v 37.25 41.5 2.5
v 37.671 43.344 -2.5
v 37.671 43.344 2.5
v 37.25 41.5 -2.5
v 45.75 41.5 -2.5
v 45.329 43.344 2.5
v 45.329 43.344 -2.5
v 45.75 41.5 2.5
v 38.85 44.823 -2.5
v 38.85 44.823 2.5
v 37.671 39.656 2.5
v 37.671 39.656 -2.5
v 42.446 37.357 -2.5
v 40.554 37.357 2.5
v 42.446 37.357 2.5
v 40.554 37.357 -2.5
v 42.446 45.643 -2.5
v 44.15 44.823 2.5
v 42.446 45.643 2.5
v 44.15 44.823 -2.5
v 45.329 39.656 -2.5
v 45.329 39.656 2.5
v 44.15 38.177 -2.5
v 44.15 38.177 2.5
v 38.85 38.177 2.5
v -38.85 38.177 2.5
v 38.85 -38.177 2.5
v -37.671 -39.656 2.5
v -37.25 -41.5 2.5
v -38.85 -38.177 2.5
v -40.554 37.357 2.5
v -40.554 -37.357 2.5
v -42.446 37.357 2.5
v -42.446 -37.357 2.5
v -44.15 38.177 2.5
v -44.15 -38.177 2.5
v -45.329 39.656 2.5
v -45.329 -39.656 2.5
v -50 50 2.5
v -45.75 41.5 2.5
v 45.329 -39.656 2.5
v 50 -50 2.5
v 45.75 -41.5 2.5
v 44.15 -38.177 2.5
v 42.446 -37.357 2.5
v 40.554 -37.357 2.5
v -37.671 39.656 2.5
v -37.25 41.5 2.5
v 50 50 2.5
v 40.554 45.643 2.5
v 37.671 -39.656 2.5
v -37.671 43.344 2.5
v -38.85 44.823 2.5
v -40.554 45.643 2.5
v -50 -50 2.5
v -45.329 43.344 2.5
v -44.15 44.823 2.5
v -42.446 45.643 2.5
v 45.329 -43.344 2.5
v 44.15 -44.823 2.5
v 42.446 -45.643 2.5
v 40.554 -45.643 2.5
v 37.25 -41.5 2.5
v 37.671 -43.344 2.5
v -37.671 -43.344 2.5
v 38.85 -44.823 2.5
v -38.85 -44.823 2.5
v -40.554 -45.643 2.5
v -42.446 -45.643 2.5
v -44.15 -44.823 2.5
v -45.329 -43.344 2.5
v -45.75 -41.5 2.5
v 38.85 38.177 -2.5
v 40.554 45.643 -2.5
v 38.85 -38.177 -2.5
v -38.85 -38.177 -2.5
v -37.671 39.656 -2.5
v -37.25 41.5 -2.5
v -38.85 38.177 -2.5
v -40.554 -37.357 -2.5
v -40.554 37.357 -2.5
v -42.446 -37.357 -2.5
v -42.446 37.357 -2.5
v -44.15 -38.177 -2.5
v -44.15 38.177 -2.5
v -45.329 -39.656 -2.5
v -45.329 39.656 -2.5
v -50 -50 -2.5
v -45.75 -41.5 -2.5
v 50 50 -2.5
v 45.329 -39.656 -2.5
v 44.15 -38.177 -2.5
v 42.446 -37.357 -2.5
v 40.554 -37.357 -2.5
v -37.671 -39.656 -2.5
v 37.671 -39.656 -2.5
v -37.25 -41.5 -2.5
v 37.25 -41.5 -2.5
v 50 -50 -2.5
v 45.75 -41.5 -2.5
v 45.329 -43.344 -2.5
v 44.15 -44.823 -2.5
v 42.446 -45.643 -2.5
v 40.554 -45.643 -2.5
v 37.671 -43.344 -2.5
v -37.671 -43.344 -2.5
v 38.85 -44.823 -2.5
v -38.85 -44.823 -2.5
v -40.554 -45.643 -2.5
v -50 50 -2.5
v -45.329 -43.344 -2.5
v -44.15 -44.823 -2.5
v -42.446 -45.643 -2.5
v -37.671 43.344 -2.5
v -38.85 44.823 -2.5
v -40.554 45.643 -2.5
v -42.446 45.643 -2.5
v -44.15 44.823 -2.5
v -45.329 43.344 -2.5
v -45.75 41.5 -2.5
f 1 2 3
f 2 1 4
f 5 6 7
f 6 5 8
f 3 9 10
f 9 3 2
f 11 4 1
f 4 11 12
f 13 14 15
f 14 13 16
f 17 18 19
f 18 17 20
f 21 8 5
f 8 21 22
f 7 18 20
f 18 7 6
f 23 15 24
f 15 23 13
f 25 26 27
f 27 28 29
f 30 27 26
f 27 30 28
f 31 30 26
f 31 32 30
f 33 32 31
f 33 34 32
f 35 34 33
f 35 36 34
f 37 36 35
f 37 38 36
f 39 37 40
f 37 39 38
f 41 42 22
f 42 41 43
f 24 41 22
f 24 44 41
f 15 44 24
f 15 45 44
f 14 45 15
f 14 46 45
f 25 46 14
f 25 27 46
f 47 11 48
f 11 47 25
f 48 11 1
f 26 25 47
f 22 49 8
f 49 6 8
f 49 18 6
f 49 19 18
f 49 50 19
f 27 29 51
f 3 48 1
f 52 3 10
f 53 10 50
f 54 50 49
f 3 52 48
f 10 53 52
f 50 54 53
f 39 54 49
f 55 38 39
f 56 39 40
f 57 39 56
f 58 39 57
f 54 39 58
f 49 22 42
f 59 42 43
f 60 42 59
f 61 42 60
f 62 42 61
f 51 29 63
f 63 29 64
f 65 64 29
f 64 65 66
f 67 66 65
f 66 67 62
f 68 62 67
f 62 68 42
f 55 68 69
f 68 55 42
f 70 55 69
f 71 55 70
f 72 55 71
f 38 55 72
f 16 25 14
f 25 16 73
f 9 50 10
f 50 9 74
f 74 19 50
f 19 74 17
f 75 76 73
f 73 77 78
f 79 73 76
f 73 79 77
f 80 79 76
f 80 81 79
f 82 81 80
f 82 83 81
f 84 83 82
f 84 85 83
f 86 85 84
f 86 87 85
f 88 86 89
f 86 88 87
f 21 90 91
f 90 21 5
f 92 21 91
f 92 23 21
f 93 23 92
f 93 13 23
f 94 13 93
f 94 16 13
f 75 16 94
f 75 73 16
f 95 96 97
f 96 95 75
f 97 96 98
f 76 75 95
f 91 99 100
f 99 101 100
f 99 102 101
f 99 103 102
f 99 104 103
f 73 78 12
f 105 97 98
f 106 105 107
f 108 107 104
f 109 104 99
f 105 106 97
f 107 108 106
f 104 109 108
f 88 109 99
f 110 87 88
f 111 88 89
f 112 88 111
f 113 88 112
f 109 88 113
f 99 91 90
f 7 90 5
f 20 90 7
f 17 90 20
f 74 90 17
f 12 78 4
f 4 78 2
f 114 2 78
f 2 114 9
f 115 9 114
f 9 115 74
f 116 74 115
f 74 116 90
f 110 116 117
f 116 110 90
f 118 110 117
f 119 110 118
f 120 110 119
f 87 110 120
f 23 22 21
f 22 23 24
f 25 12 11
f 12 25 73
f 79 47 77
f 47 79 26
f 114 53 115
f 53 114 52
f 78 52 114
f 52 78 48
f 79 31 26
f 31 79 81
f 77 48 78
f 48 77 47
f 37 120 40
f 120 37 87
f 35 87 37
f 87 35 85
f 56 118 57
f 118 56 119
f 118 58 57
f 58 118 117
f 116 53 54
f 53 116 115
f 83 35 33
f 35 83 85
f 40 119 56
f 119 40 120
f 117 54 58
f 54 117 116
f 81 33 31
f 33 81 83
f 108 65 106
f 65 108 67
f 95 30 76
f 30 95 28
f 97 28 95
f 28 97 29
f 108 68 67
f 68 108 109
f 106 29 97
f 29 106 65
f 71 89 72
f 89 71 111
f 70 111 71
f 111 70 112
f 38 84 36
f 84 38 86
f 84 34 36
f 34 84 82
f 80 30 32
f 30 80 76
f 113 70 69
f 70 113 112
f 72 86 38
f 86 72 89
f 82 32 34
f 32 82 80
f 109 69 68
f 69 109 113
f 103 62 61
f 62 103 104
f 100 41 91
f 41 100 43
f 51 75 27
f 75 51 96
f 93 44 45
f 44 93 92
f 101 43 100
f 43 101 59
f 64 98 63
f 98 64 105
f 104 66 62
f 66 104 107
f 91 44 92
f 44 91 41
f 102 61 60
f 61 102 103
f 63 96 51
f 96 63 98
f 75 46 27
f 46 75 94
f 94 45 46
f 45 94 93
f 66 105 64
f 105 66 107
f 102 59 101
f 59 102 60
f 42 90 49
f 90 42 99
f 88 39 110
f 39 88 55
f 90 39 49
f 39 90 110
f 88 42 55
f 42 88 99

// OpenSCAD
// Generated by SolidPython 1.1.3 on 2023-10-16 12:15:28


difference() {
	cube(center = true, size = [100, 100, 5]);
	union() {
		translate(v = [41.5000000000, 41.5000000000]) {
			cylinder(center = true, h = 5, r = 4.2500000000);
		}
		translate(v = [-41.5000000000, 41.5000000000]) {
			cylinder(center = true, h = 5, r = 4.2500000000);
		}
		translate(v = [-41.5000000000, -41.5000000000]) {
			cylinder(center = true, h = 5, r = 4.2500000000);
		}
		translate(v = [41.5000000000, -41.5000000000]) {
			cylinder(center = true, h = 5, r = 4.2500000000);
		}
	}
}
/***********************************************
*********      SolidPython code:      **********
************************************************
 
import solid
import numbers
import pudb
from solid.utils import *
import viewscad
import subprocess
import os
import os.path as osp
import math
import sys

chamfer_extrude=solid.import_scad("./chamfer_extrude.scad")
chamfer_extrude=chamfer_extrude.chamfer_extrude
r = viewscad.Renderer(width=800, height=800)

def debug(model,f_name,path="/home/ts/code/projects/mfd/designs/debug"):
    solid.scad_render_to_file(model,osp.join(path,f_name)+".scad")
#generate position list of wells using offset from center
wells_pos_from_center_4 = lambda offset: [[-offset,offset],
                                        [offset, offset],
                                        [-offset, -offset],
                                        [offset, -offset]]
#wells_pos_from_center_2 = lambda offset: [[0,offset],
#                                        [0, -offset]]
wells_pos_from_center_2 = lambda offset: [[offset,0],
                                        [-offset,0]]

def make_well(dims,shape=None,height=None,dxf=False):
    def circle_cylinder():
        if dxf or (height is None):
            well = solid.circle(r=dims, segments=64)
        else:
            well = solid.cylinder(r=dims, h=height, segments=64, center = True)
        return well
    if dims is None:
        sys.exit("radius needs to be a number")
    if isinstance(dims, numbers.Number):
        well =circle_cylinder()
    elif len(dims)==1:
        if isinstance(dims[1], numbers.Number):
            well =circle_cylinder()
        else:
            sys.exit("radius needs to be a number")
    elif len(dims)==2:
        well = solid.square(dims,center = True)
    elif len(dims)==3:
        well = solid.cube(dims, center = True)
    return well

def wells_top_bottom(center_gap,device_dims=None,shape=None,height=None, positions = None, dxf = False):
    well_shape = make_well(device_dims,shape=shape,height=height,dxf=dxf)
    wells = []
    if positions is None:
        offset = radius+radius/2.0
        positions = wells_pos_from_center_2(offset)
    if dxf or (height is None):
        height = 0
    for position in positions:
        if dxf:
            wells.append(solid.translate([position[0],position[1]])(well_shape))
        else:
            wells.append(solid.translate([position[0],position[1],height/2.0])(well_shape))
    return  union()(*wells)

#place wells in four corners 
def four_corner(radius,height=None, positions = None, dxf = False):
    #if well pos not specified set
    #to equally spaced by half radius
    if positions is None:
        offset = radius+radius/2.0
        positions = wells_pos_from_center_4(offset)
    if dxf or (height is None):
        height = 0
    #make wells at positions with specified radius and height
    wells = []
    for position in positions:
        #make circle if making dxf
        if dxf:
            well_shape = solid.circle(r=radius, segments=64)
            well_shape = solid.translate([position[0],position[1]])(well_shape)
        #if stl make cylinder
        else:
            well_shape = solid.cylinder(r=radius, h=height, segments=64, center = True)
            well_shape = solid.translate([position[0],position[1],height/2.0])(well_shape)
        wells.append(well_shape)
    return  union()(*wells)

#generate channels 
def make_channels(length,width,height=0,num_chans=1,max_chans=None,spacing=None, dxf = False,
                  rotate_channels=False):
    if dxf or (height is None):
        height = 0
    #if channel gap not defined, is equal to
    if spacing is None: spacing = width
    #calculate number of channels if fitting max num within given width
    if not max_chans is None:
        import math
        num_chans = math.floor((max_chans-spacing)/(width+spacing))
    #get total width of channel section  
    total_width = (width*num_chans)+(spacing*(num_chans-1))

    #make template channel
    #if rotate_channels: width, length = length, width
    if dxf:
        channel_t = solid.square([length,width],center = True)
    else:
        channel_t = solid.cube([length,width,height], center = True)

    #if number channels is even, offset the first channel to center its gap
    if num_chans % 2 == 0: centering = -(width/2.0+spacing/2.0)
    else: centering = 0
    #move template channel up to align bottom at z = 0 
    #and offset center if necessary
    if dxf:
        channel_t = solid.translate([0,centering])(channel_t)
    else:
        channel_t = solid.translate([0,centering,height/2.0])(channel_t)

    #if rotate_channels: length,width = width,length
    #start making the channels
    channels = []
    for i in range(num_chans):
        #if i=0 there is no translation
        #if i=1, we make the first channel adjacent to second
        direction = i

        #if i>=1, we add channels alternating left and right
        if i >= 1:
            direction = -(i/2.0)
            if i % 2 == 1: direction = (-direction)+0.5
                
        #make channel at right position and add it to channel list
        translation_coords = [0,direction*(width+spacing)]
        #if rotate_channels: translation_coords = [direction*(width+spacing),0]
        if dxf:
            channel = solid.translate(translation_coords)(channel_t)
        else:
            channel = solid.translate([*translation_coords,0])(channel_t)
        channels.append(channel)
    
    #group all channels as one object
    channels = union()(*channels)
    #compute the x,y,z dimensions in order to pass as arguments 
    #for construction of other parts of device (such as the chambers)
    measurements = {'x':(length/2.0,-length/2.0),
                    'y':(total_width/2.0,-total_width/2.0)}
    if not dxf:
        measurements['z'] = (height,0)
    if rotate_channels:
        channels = solid.rotate(90)(channels)
        measurements['x'],measurements['y']=measurements['y'],measurements['x']
    return channels,measurements

def make_chambers(msrs,height=None,extra=0,len_until=None,width=None, dxf = False):
    #computes x,y,z length
    total = lambda x : abs(x[0]) + abs(x[1])
    
    #if specific height if specified
    #otherwise use same height as channels
    if dxf:
        pass
    elif not height is None:
        msrs['z'] = (height,0)
    else:
        msrs['z'] = (0,0)
        
    #make copy of measurements from channels to modify chamber dimensions 
    #and add length to chambers as specified
    chamber_dims = msrs.copy()
    #calculate length of chamber to reach specified offset
    if not len_until is None:
        chamber_len = len_until-(msrs['x'][0])
    #or add specified length to channel length (if not specified, adds 0)
    else:
        chamber_len = msrs['x'][0]+extra
    #set the chamber length based 
    chamber_dims['x'] = (chamber_len/2.0,-(chamber_len/2.0))
    #compute final dimensions of chamber
    if not width is None:
        chamber_dims['y'] = (width/2.0,-width/2.0)
    chamber_dims = [total(size) for size in chamber_dims.values()]
        
    #calculate chamber translation offset to place adjacent to channels
    chamber_trslt = msrs['x'][0]+(chamber_len/2.0)
    #compute chamber translation coordinates to align with channels
    #x = 1 moves chamber above channels
    #x = -1 moves chamber below channels
    if dxf:
        trslt = lambda x : [x*(chamber_trslt),0]
    else:
        trslt = lambda x : [x*(chamber_trslt),0,msrs['z'][0]/2.0]
    
    #function to make chamber at top or at bottom 
    if dxf:
        move = lambda x : solid.translate(trslt(x))(solid.square(chamber_dims, center = True) )
    else:
        move = lambda x : solid.translate(trslt(x))(solid.cube(chamber_dims,center = True))
    #make top and bottom chambers and return them as grouped
    top = move(1)
    bottom = move(-1)
    #chambers=solid.rotate(90)(solid.union()(top,bottom))
    chambers=(solid.union()(top,bottom))

    return chambers

#create alignment features 
def alignment_features(unit,dims,grid_size, mask_size = None, alignment = "hollow", units_from_center = (2.5,2.5), corner_len=None):
    width = grid_size[0]*dims[0]
    length = grid_size[1]*dims[1]
    if mask_size is None and corner_len is None:
        corner_len = (dims[0] + dims[1]) /2 / 8
    corner = lambda thickness_div : solid.union()( solid.square([corner_len,corner_len/thickness_div],center=False), solid.square([corner_len/thickness_div,corner_len],center=False) )
    
    def make_full(thickness_div):
        thickness = corner_len/thickness_div
        tr = solid.translate([0, 0, 0 ])(solid.rotate(180)(corner(thickness_div)))
        tr = solid.translate([thickness/2,thickness/2,0])(tr)
        bl = solid.translate([0, 0, 0 ])(solid.rotate(0)(corner(thickness_div)))
        bl = solid.translate([-thickness/2,-thickness/2,0])(bl)
        return solid.union()(tr,bl)
    
    def make_hollow(thickness_div):
        thickness = corner_len/(thickness_div/2)
        inner = make_full(thickness_div)
        outer = make_full(thickness_div/2)
        hollow = outer - inner 
        return hollow
    
    center = (width /2 , length/2)
    mask_pos = lambda x,y : (center[0] + x*(float(units_from_center[0])*dims[0]), center[1] + y*(float(units_from_center[1])*dims[1]))
    positions = []
    positions.append(mask_pos(1,0))
    positions.append(mask_pos(0,1))
    positions.append(mask_pos(-1,0))
    positions.append(mask_pos(0,-1))
    make_mask = lambda mtype : make_hollow(8) if mtype == "hollow" else make_full(8)
    masks = [ solid.translate([*position,0])(make_mask(alignment)) for position in positions]
    
    solid.scad_render_to_file(solid.union()(*masks),"./designs/open_chamber/masks.scad")
    #return unit - solid.union()(*masks)
    return solid.union()(*masks,unit)

def create_outline(thickness, array, dims, grid_size,):
    width = grid_size[0]*dims[0] + thickness *2
    length = grid_size[1]*dims[1] + thickness *2
    outer = solid.translate([-thickness, -thickness,0])(solid.square([width, length]))
    return outer-array

def create_wall(wall_thickness, outline_thickness, dims, grid_size, wall_height = 2000, dxf = False):
    inner_width = grid_size[0]*dims[0] + outline_thickness *2
    inner_length = grid_size[1]*dims[1] + outline_thickness *2
    outer_width = inner_width + wall_thickness * 2
    outer_length = inner_length + wall_thickness * 2
    outer_pos_x = -outline_thickness-wall_thickness
    outer_pos_y = -outline_thickness-wall_thickness
    inner_pos_x = -outline_thickness
    inner_pos_y = -outline_thickness
    if dxf:
        inner_wall = solid.translate([inner_pos_x,
                                      inner_pos_y,
                                      0])(solid.square([inner_width, inner_length]))
        outer_wall = solid.translate([outer_pos_x,
                                      outer_pos_y,
                                      0])(solid.square([outer_width, outer_length]))

        return outer_wall-inner_wall
    else:
        inner_wall = solid.translate([inner_pos_x,
                                      inner_pos_y,
                                      0])(solid.cube([inner_width, inner_length,wall_height]))
        outer_wall = solid.translate([outer_pos_x,
                                      outer_pos_y,
                                      0])(solid.cube([outer_width, outer_length,wall_height]))

        return outer_wall-inner_wall, {'wall_height': wall_height,
                                       'wall_thickness': wall_thickness,
                                       'inner_width':inner_width,
                                       'inner_length': inner_length,
                                       'outer_width': outer_width,
                                       'outer_length': outer_length,
                                       'outer_pos_x' : outer_pos_x,
                                       'outer_pos_y' : outer_pos_y,
                                       'inner_pos_x' : inner_pos_x,
                                       'inner_pos_y' : inner_pos_y}

def create_thicker_wall(wall_thickness, outer_wall_offset, wall_dims, dims, grid_size, height_start = .2, height_end=2, dxf = False):
    addon_wall,thicker_wall_dims = create_wall(wall_thickness, outer_wall_offset, dims, grid_size, wall_height=height_end-height_start, dxf = False)
    addon_wall = solid.translate([0,0,height_start])(addon_wall)

    thicker_wall_dims['wall_height'] = height_end
    thicker_wall_dims['wall_thickness'] = wall_dims['wall_thickness'] + wall_thickness
    return addon_wall, thicker_wall_dims
 
def add_lock_to_wall(wall,wall_dims,y_offset = 0,cut_ratio=0.7,L_length=3, gap_ratio=0.05, axis="x",width_ratio=1/2):
    # Makes L shape
    def make_L(max_length,length_thickness,max_width,width_thickness,height,y_offset):
        length = solid.cube([max_length,length_thickness,height])
        width = solid.cube([width_thickness,max_width,height])
        width = solid.translate([max_length-(width_thickness),0,0])(width)
        L = solid.union()(width,length)
        debug(L,"L")
        if axis == "x":
            L = solid.rotate(-90)(L)
            L = solid.translate([0,max_length,0])(L)
        else:
            L = solid.rotate(-180)(L)
            L = solid.translate([max_length,max_width,0])(L)
        return solid.translate([0,0,y_offset])(L)
    
    lock_length = L_length
    lock_width = wall_dims['wall_thickness']*width_ratio
    lock_length_thickness = lock_width/2
    lock_width_thickness = lock_width/2
    L_lock = make_L(lock_length,lock_length_thickness,lock_width,lock_width_thickness, wall_dims['wall_height']-y_offset, y_offset)
    
    margin_space = lock_length - lock_length*(1-gap_ratio)
    key_length = lock_length-margin_space
    key_length_thickness = lock_length_thickness-(margin_space*2)
    key_width = lock_width-(margin_space*2)
    key_width_thickness = lock_width_thickness-(margin_space*2)
    L_key = make_L(key_length,key_length_thickness,key_width,key_width_thickness, wall_dims['wall_height']-y_offset, y_offset)
    L_key = solid.translate([margin_space,margin_space,0])(L_key)
    L = solid.union()(L_lock,L_key)
    debug(L,"L")
    
    #Make cube to be used as negative to split frame in a half
    #Can choose if making left or right negative, specify ratio of split
    def make_negative(right,cut_ratio):
        if axis == "x":
            if right:
                length = wall_dims['outer_length']*(1-cut_ratio)
                pos_x = wall_dims['outer_pos_x']+(wall_dims['outer_length']*cut_ratio)
            else:
                length = wall_dims['outer_length']*(cut_ratio)
                pos_x = wall_dims['outer_pos_x'] 
            negative = solid.cube([wall_dims['outer_width'],length, wall_dims['wall_height']])
            negative = solid.translate([wall_dims['outer_pos_y'],pos_x,0])(negative)
        else:
            if right:
                length = wall_dims['outer_width']*(1-cut_ratio)
                pos_x = wall_dims['outer_pos_y']+(wall_dims['outer_width']*cut_ratio)
            else:
                length = wall_dims['outer_width']*(cut_ratio)
                pos_x = wall_dims['outer_pos_y'] 
            negative = solid.cube([length,wall_dims['outer_length'], wall_dims['wall_height']])
            negative = solid.translate([pos_x,wall_dims['outer_pos_x'],0])(negative)
        return negative, pos_x, length 
                      
    #Make negatives
    negative_right, right_half_pos_x, right_half_length = make_negative(True,cut_ratio)
    negative_left, left_half_pos_x, right_half_length = make_negative(False,cut_ratio)
    #Make halves
    left_half = solid.difference()(wall,negative_right)
    right_half = solid.difference()(wall,negative_left)
    def place_L(L, L_length,L_width):
        #Place L on top wall       
        offset_to_center = (wall_dims['wall_thickness']-L_width)/2
        if axis == "x":
            y_pos_top = (wall_dims['outer_pos_y'] +
                    wall_dims['outer_width'] - 
                    L_width - offset_to_center)
            top_L = solid.translate([y_pos_top,
                                     right_half_pos_x-(L_length),
                                     0])(L)
            #Place L on bottom wall       
            y_pos_bottom = wall_dims['outer_pos_y']+offset_to_center
            bottom_L = solid.translate([y_pos_bottom,
                                        right_half_pos_x-L_length,
                                        0])(L)
        else:
            y_pos_top = (wall_dims['outer_pos_x'] +
                    wall_dims['outer_length'] -
                    (L_width+offset_to_center))
            top_L = solid.translate([right_half_pos_x-L_length,
                                     y_pos_top,
                                     0])(L)
            #Place L on bottom wall       
            y_pos_bottom = wall_dims['outer_pos_y']+offset_to_center
            bottom_L = solid.translate([right_half_pos_x-L_length,
                                        y_pos_bottom,
                                        0])(L)
        return bottom_L, top_L
    #Make complimentary L pieces through union and differences
    #Make Lock
    bottom_L_lock, top_L_lock = place_L(L_lock,L_length,lock_width)
    left_half = solid.difference()(left_half,bottom_L_lock)
    left_half = solid.difference()(left_half,top_L_lock)
    #Make Key
    bottom_L_key, top_L_key = place_L(L_key,L_length,lock_width)
    right_half = solid.union()(right_half,bottom_L_key)
    right_half = solid.union()(right_half,top_L_key)
    return left_half, right_half


#build a row x col grid of containment units
def make_unit_array(unit,dims,grid_size, dxf = False, alignment = None, mask_size = None,
                    units_from_center = None,alignment_offset=None, alignment_mark_size=1):
    units = []
    for col in range(grid_size[1]):
        for row in range(grid_size[0]):
            if dxf:
                units.append(solid.translate([row*dims[0],col*dims[1]])(unit))
            else:
                units.append(solid.translate([row*dims[0],col*dims[1],dims[2]/2.0])(unit))
    array = solid.union()(*units)
    if (not alignment is None) and dxf:
        if not alignment_offset is None:
            array = solid.translate([alignment_offset[0],alignment_offset[1]])(array)
        array = alignment_features(array,dims, grid_size, alignment = alignment, mask_size = None, units_from_center = units_from_center,corner_len=alignment_mark_size)
        if not alignment_offset is None:
            array = solid.translate([-alignment_offset[0],-alignment_offset[1]])(array)
    return array


def make_taylor(wells_pos = wells_pos_from_center_4(2.25), well_rad = 1.5 ,
                well_height = 2, chan_w = 0.01, chan_l = 1, chan_h = 0.010 ,
                chan_gap = 0.040, max_chans = None,num_chans=100, chamber_height  = 0.100,
                columns = 1, rows = 1, chamber_len_until=2.25, add_channels = True, add_wells = True, 
                add_chambers = True, save_path = "./", alignment = None, units_from_center = 2,
                mask_size = None, render_stl = False, outline_thickness = 0.050, dxf = True,
                wall_height = 15, wall_thickness = 0.95, casing_x=9, casing_y=9, casing_z=0,rotate_units=0):

    dims = [casing_x, casing_y, casing_z]
    wells = four_corner(well_rad,well_height, dxf = dxf, positions = wells_pos)
    debug(wells,"wells")
    channels, msrs = make_channels(chan_l,chan_w,chan_h,dxf=dxf, spacing = chan_gap, max_chans=max_chans,num_chans=num_chans)
    debug(channels,"channels")
    chambers = make_chambers(msrs,dxf = dxf, height=chamber_height,len_until=chamber_len_until)
    debug(chambers,"chambers")

    #add together and render
    device_parts = []
    if add_channels:
        device_parts.append(channels)
    if add_wells:
        device_parts.append(wells)
    if add_chambers:
        device_parts.append(chambers)
    device=union()(*device_parts)
    device = rotate(rotate_units)(device)

    device=solid.translate([dims[0]/2.0,dims[1]/2.0,0])(device)
    channels = rotate(rotate_units)(channels)
    channels=solid.translate([dims[0]/2,dims[1]/2,0])(channels)
    chambers_wells = union()(wells,chambers)
    chambers_wells = rotate(rotate_units)(chambers_wells)
    chambers_wells=solid.translate([dims[0]/2,dims[1]/2,0])(chambers_wells)

    file_name = str(rows)+'x'+str(columns)+'_units_'
    grid_size = [rows,columns]

    if alignment:
        alignment="full"
    device = make_unit_array(device,dims,grid_size, dxf=dxf, alignment = alignment,
                                 units_from_center = units_from_center)
    channels = make_unit_array(channels,dims,grid_size, dxf=dxf, alignment = alignment,
                                 units_from_center = units_from_center)
    if alignment=="full":
        alignment="hollow"

    chambers_wells = make_unit_array(chambers_wells,dims,grid_size, dxf=dxf, alignment = alignment,
                                 units_from_center =units_from_center)

    def save_model(model,prefix):
        model_fname = os.path.abspath(save_path+prefix+"_"+file_name+".scad")
        solid.scad_render_to_file(model,model_fname)
        return model_fname

    wells_fname = save_model(wells,"wells")
    channels_fname = save_model(channels,"channels")
    device_fname = save_model(device,"device")
    chambers_wells_fname = save_model(chambers_wells,"chambers_wells")
    return (chambers_wells,chambers_wells_fname), (channels,channels_fname), (device,device_fname)

def make_device(design='open',rows=8,columns=6,wells_pos = 4.5,well_offset=3.2, well_rad=3.2,well_height=0.1,
                chan_l=1,chan_w=0.01,chan_h=0.01,chan_gap=0.015,num_chans=101,dxf=True,save_path="./designs/open_chamber/",
                casing_x=9.0,casing_y=18.0,casing_z=0,rotate_units=90,units_from_center=(3,1),chamber_len_until=4.5,
                chamber_width=None,alignment=True, add_wells=True, add_channels=True,add_chambers=True):

    dims = [casing_x, casing_y, casing_z]
    if design == "open":
        wells_pos=wells_pos_from_center_2(wells_pos)
        wells = wells_top_bottom(well_offset*2,device_dims=well_rad,height=well_height, dxf = dxf, positions = wells_pos)
    elif design == "closed":
        wells_pos=wells_pos_from_center_4(wells_pos)
        debug(wells,"wells")
        wells = four_corner(well_offset,well_heightdevice_dims=well_rad, dxf = dxf, positions = wells_pos)
    else:
        print(design+" is not a valid design.\n Choose valid design: 'open' or 'closed'")
        exit()
    wells = rotate(rotate_units)(wells)
    wells=solid.translate([dims[0]/2,dims[1]/2,0])(wells)
    debug(wells,"wells")

    channels, msrs = make_channels(chan_l,chan_w,chan_h,dxf=dxf, spacing = chan_gap, num_chans=num_chans,rotate_channels=False)
    channels = rotate(rotate_units)(channels)
    channels=solid.translate([dims[0]/2,dims[1]/2,0])(channels)

    chambers=make_chambers(msrs,height=None,extra=0,len_until=chamber_len_until, width=chamber_width,dxf = dxf)
    chambers = rotate(rotate_units)(chambers)
    chambers=solid.translate([dims[0]/2,dims[1]/2,0])(chambers)

    device_parts = []
    if add_channels:
        device_parts.append(channels)
    if add_wells:
        device_parts.append(wells)
    if add_chambers:
        device_parts.append(chambers)
    device = union()(*device_parts)
    #device = rotate(rotate_units)(device)
    #device=solid.translate([dims[0]/2.0,dims[1]/2.0,0])(device)

    chambers_wells = []
    if add_chambers:
        chambers_wells.append(chambers)
    if add_wells:
        chambers_wells.append(wells)
    chambers_wells = union()(*chambers_wells)
    #chambers_wells = union()(wells,chambers)
    #chambers_wells = rotate(rotate_units)(chambers_wells)
    #chambers_wells=solid.translate([dims[0]/2,dims[1]/2,0])(chambers_wells)

    file_name = str(rows)+'x'+str(columns)+'_units_'

    grid_size = [rows,columns]
    if alignment:
        alignment="full"
    device = make_unit_array(device,dims,grid_size, dxf=dxf, alignment = alignment,
                                 units_from_center = units_from_center)
    channels = make_unit_array(channels,dims,grid_size, dxf=dxf, alignment = alignment,
                                 units_from_center = units_from_center)
    if alignment=="full":
        alignment="hollow"

    chambers_wells = make_unit_array(chambers_wells,dims,grid_size, dxf=dxf, alignment = alignment,
                                 units_from_center =units_from_center)

    def save_model(model,prefix):
        model_fname = os.path.abspath(save_path+prefix+"_"+file_name+".scad")
        solid.scad_render_to_file(model,model_fname)
        return model_fname

    wells_fname = save_model(wells,"wells")
    channels_fname = save_model(channels,"channels")
    device_fname = save_model(device,"device")
    chambers_wells_fname = save_model(chambers_wells,"chambers_wells")
    return (chambers_wells,chambers_wells_fname), (channels,channels_fname), (device,device_fname)


def make_open_chamber(rows=8,columns=6,wells_pos = wells_pos_from_center_2(4.5), well_rad=3.2,well_height=0.1,
                      chan_l=1,chan_w=0.01,chan_h=0.01,chan_gap=0.015,num_chans=101,dxf=True,save_path="./designs/open_chamber/",
                      casing_x=9.0,casing_y=18.0,casing_z=0,rotate_units=90,units_from_center=(3,1),chamber_len_until=4.5,
                      chamber_width=None,alignment=True, add_wells=True, add_channels=True,add_chambers=True):

    dims = [casing_x, casing_y, casing_z]
    wells = wells_top_bottom(well_rad,height=well_height, dxf = dxf, positions = wells_pos)
    channels, msrs = make_channels(chan_l,chan_w,chan_h,dxf=dxf, spacing = chan_gap, num_chans=num_chans,rotate_channels=False)
    chambers=make_chambers(msrs,height=None,extra=0,len_until=chamber_len_until, width=chamber_width,dxf = dxf)
    debug(chambers,"chambers")
    device_parts = []
    if add_channels:
        device_parts.append(channels)
    if add_wells:
        device_parts.append(wells)
    if add_chambers:
        device_parts.append(chambers)
    device = union()(*device_parts)
    device = rotate(rotate_units)(device)
    device=solid.translate([dims[0]/2.0,dims[1]/2.0,0])(device)
    channels = rotate(rotate_units)(channels)
    channels=solid.translate([dims[0]/2,dims[1]/2,0])(channels)
    chambers_wells = union()(wells,chambers)
    chambers_wells = rotate(rotate_units)(chambers_wells)
    chambers_wells=solid.translate([dims[0]/2,dims[1]/2,0])(chambers_wells)

    file_name = str(rows)+'x'+str(columns)+'_units_'

    grid_size = [rows,columns]
    if alignment:
        alignment="full"
    device = make_unit_array(device,dims,grid_size, dxf=dxf, alignment = alignment,
                                 units_from_center = units_from_center)
    channels = make_unit_array(channels,dims,grid_size, dxf=dxf, alignment = alignment,
                                 units_from_center = units_from_center)
    if alignment=="full":
        alignment="hollow"

    chambers_wells = make_unit_array(chambers_wells,dims,grid_size, dxf=dxf, alignment = alignment,
                                 units_from_center =units_from_center)

    def save_model(model,prefix):
        model_fname = os.path.abspath(save_path+prefix+"_"+file_name+".scad")
        solid.scad_render_to_file(model,model_fname)
        return model_fname

    wells_fname = save_model(wells,"wells")
    channels_fname = save_model(channels,"channels")
    device_fname = save_model(device,"device")
    chambers_wells_fname = save_model(chambers_wells,"chambers_wells")
    return (chambers_wells,chambers_wells_fname), (channels,channels_fname), (device,device_fname)

def to_dxf(scad_path):
    dxf_path = scad_path.replace(".scad",".dxf")
    subprocess.call(["openscad", "-o", dxf_path, scad_path])
    import ezdxf
    temp_dxf = ezdxf.readfile(dxf_path)
    temp_dxf.saveas(dxf_path)

#def make_walls(diameter,thickness,grid_size,dims,height=20,segments=256,make_inner=True):
#    wafer_wall_out = solid.cylinder(r=diameter/2,h=height, segments=segments)
#    wafer_wall_in = solid.cylinder(r=(diameter/2-thickness),h=height, segments=segments)
#    wafer_wall = solid.difference()(wafer_wall_out,wafer_wall_in)
#    wafer_wall = solid.translate([grid_size[1]*dims[1]/2.0,grid_size[0]*dims[0]/2.0])(wafer_wall)
#
#    vertical_wall_length = grid_size[1]*dims[1]
#    horizontal_wall_length = grid_size[0]*dims[0]
#    vertical_wall = solid.cube([vertical_wall_length,thickness,height],center = True)
#    vertical_wall = solid.translate([vertical_wall_length/2,0,height/2])(vertical_wall)
#    horizontal_wall = solid.cube([thickness,horizontal_wall_length,height],center = True)
#    horizontal_wall = solid.translate([0,vertical_wall_length/2,height/2])(horizontal_wall)
#    walls = []
#    walls.append(horizontal_wall)
#    walls.append(vertical_wall)
#    for col in range(grid_size[1]):
#        if col == grid_size[1]-1: 
#            walls.append(solid.translate([0,(col+1)*dims[1]])(vertical_wall))
#        elif col > 0 and col < grid_size[1]-1 and make_inner==True:
#            walls.append(solid.translate([0,(col+1)*dims[1]])(vertical_wall))
#    for row in range(grid_size[0]):
#        if row == grid_size[0]-1: 
#            walls.append(solid.translate([(row+1)*dims[0],0])(horizontal_wall))
#        elif row > 0 and row < grid_size[0]-1 and make_inner==True:
#            walls.append(solid.translate([(row+1)*dims[0],0])(horizontal_wall))
#    walls = union()(*walls)
#    wafer_walls = union()(walls,wafer_wall)
#    return walls,wafer_wall,wafer_walls

def make_walls(diameter,thickness,grid_size,dims,height=20,segments=256,make_inner=True,padx=0,pady=0):
    wafer_wall_out = solid.cylinder(r=diameter/2,h=height, segments=segments)
    wafer_wall_in = solid.cylinder(r=(diameter/2-thickness),h=height, segments=segments)
    wafer_wall = solid.difference()(wafer_wall_out,wafer_wall_in)
    wafer_wall = solid.translate([grid_size[1]*dims[1]/2.0,grid_size[0]*dims[0]/2.0])(wafer_wall)

    vertical_wall_length = grid_size[0]*dims[0]+padx
    horizontal_wall_length = grid_size[1]*dims[1]+pady
    vertical_wall = solid.cube([vertical_wall_length,thickness,height],center = True)
    vertical_wall = solid.translate([vertical_wall_length/2-pady/2,-padx/2,height/2])(vertical_wall)
    horizontal_wall = solid.cube([thickness,horizontal_wall_length,height],center = True)
    horizontal_wall = solid.translate([-pady/2,horizontal_wall_length/2-padx/2,height/2])(horizontal_wall)
    walls = []
    walls.append(horizontal_wall)
    walls.append(vertical_wall)
    for col in range(grid_size[1]):
        if col == grid_size[1]-1: 
            walls.append(solid.translate([0,(col+1)*dims[1]+pady])(vertical_wall))
        elif col > 0 and col < grid_size[1]-1 and make_inner==True:
            walls.append(solid.translate([0,(col+1)*dims[1]])(vertical_wall))
    for row in range(grid_size[0]):
        if row == grid_size[0]-1: 
            walls.append(solid.translate([(row+1)*dims[0]+padx,0])(horizontal_wall))
        elif row > 0 and row < grid_size[0]-1 and make_inner==True:
            walls.append(solid.translate([(row+1)*dims[0],0])(horizontal_wall))
    walls = union()(*walls)
    wafer_walls = union()(walls,wafer_wall)
    return walls,wafer_wall,wafer_walls

def save_model(model,base_path,base_name,dxf=True):
    if not os.path.exists(base_path):
        os.makedirs(base_path)
    dxf_path=osp.join(base_path,base_name+".scad")
    solid.scad_render_to_file(model,osp.join(dxf_path))
    if dxf:
        to_dxf(dxf_path)

def make_wafer(diameter,flat_len,thickness):
    wafer = solid.cylinder(r1=diameter/2,r2=diameter/2,h=thickness,segments=512,)()
    x_start_flat=(flat_len/2)
    y_start_flat = math.sqrt(((diameter/2)**2) - (x_start_flat**2) )
    height_delete_flat=diameter/2-y_start_flat
    flat_delete = solid.cube([flat_len,height_delete_flat,thickness],center=False)()
    flat_delete = solid.translate([-flat_len/2,y_start_flat,0])(flat_delete)
    wafer = solid.difference()(wafer,flat_delete)
    wafer = solid.rotate(90)(wafer)
    return wafer

def add_wafer_to_mask(wafer_size,flat_len,mask,grid_size,dims,wafer_line_thickness=0.1,outer_mask_thickness=5,alignment_offset=None):
    def make_wafer_mask(wafer_size,flat_len):
        wafer_mask = make_wafer(wafer_size,flat_len,1)
        wafer_mask = solid.projection()(wafer_mask)
        wafer_mask = solid.translate([grid_size[0]*dims[0]/2.0,grid_size[1]*dims[1]/2.0])(wafer_mask)
        if not alignment_offset is None:
            wafer_mask = solid.translate([-alignment_offset[0],-alignment_offset[1]])(wafer_mask)
        return wafer_mask

    inner_wafer_line_mask = make_wafer_mask(wafer_size-wafer_line_thickness/2,flat_len)
    outer_wafer_line_mask = make_wafer_mask(wafer_size+wafer_line_thickness/2,flat_len)
    outer_wafer_mask = make_wafer_mask(wafer_size+outer_mask_thickness,flat_len)
    outer_wafer_mask = solid.difference()(outer_wafer_mask,outer_wafer_line_mask)
    wafer_mask = solid.union()(outer_wafer_mask,inner_wafer_line_mask)

    return solid.difference()(wafer_mask,mask)

def make_posts(post_shape,post_height):
    posts = solid.linear_extrude(height=post_height)(post_shape)
    return posts

def make_wafer_empty(diameter,flat_len,thickness,margin,notch_len=20,notch_height=5,oversize=1.01):
    diameter*=oversize
    flat_len*=oversize
    wafer = make_wafer(diameter,flat_len,thickness)
    holder = solid.cylinder(r1=diameter/2+margin,r2=diameter/2+margin,h=thickness,segments=512)()
    holder = solid.difference()(holder,wafer)

    x_start_flat=(flat_len/2)
    y_start_flat = math.sqrt(((diameter/2)**2) - (x_start_flat**2) )
    height_delete_flat=diameter/2-y_start_flat
    notch = solid.cube([notch_len,notch_height,thickness],center=False)()
    notch = solid.translate([-notch_len/2,y_start_flat,0])(notch)
    notch = solid.rotate(90)(notch)
    return solid.difference()(holder,notch)

def wafer_print_calibration(diameter,thickness,height,z_offset):
    circles = []
    radii = []
    radii.append(diameter/2.0*0.8)
    radii.append(diameter/2.0*0.6)
    radii.append(diameter/2.0*0.4)
    radii.append(diameter/2.0*0.2)
    for radius in radii:
        inner = solid.cylinder(r1=radius-(thickness/2.0),r2=radius-(thickness/2.0),h=thickness,segments=512,)()
        outer = solid.cylinder(r1=radius+(thickness/2.0),r2=radius+(thickness/2.0),h=thickness,segments=512,)()
        diff = solid.difference()(outer,inner)
        circles.append(diff)
    circles = solid.union()(*circles)
    circles = solid.translate([0,0,z_offset])(circles)
    return circles

def make_rack(wells,dims,grid_size,alignment_offset,rack_x,rack_y,rack_thickness,bolt_width,add_bolts=True):

    #get X and Y dimensions of gride of pipette tips
    X_len = dims[0]*grid_size[0]
    Y_len = dims[1]*grid_size[1]
    #make rack
    rack = solid.cube([rack_x,rack_y,rack_thickness],center=True)

    if add_bolts:
    #add bolt holes
        bolt_hole=solid.cylinder(r=bolt_width/2,h=rack_thickness,center=True)()
        bolt_holes = []
        bolt_holes.append(solid.translate([rack_x/2-1.5*bolt_width,rack_y/2-1.5*bolt_width])(bolt_hole))
        bolt_holes.append(solid.translate([-rack_x/2+1.5*bolt_width,rack_y/2-1.5*bolt_width])(bolt_hole))
        bolt_holes.append(solid.translate([-rack_x/2+1.5*bolt_width,-rack_y/2+1.5*bolt_width])(bolt_hole))
        bolt_holes.append(solid.translate([rack_x/2-1.5*bolt_width,-rack_y/2+1.5*bolt_width])(bolt_hole))
        bolt_holes = solid.union()(*bolt_holes)
        rack=solid.difference()(rack,bolt_holes)
    rack_support = rack

    #center rack with pipette holes
    rack = solid.translate([0,0,rack_thickness/2])(rack)
    rack = solid.translate([X_len/2,Y_len/2])(rack)
    rack = solid.translate([-alignment_offset[0],-alignment_offset[1]])(rack)
    wells = solid.linear_extrude(height=rack_thickness)(wells)
    rack = solid.difference()(rack,wells)
    return rack, rack_support

def make_pillar(wells,dims,grid_size,alignment_offset,rack_x,rack_y,pillar_height,rack_thickness,bolt_width,add_bolts=True,taper_angle=1,bolt_position_corner=1.5):

    #get X and Y dimensions of gride of pipette tips
    X_len = dims[0]*grid_size[0]
    Y_len = dims[1]*grid_size[1]
    #make rack
    rack = solid.cube([rack_x,rack_y,rack_thickness],center=True)
    
    if add_bolts:
    #add bolt holes
        bolt_hole=solid.cylinder(r=bolt_width/2,h=rack_thickness,center=True)()
        bolt_holes = []
        bolt_holes.append(solid.translate([rack_x/2-bolt_position_corner*bolt_width,rack_y/2-bolt_position_corner*bolt_width])(bolt_hole))
        bolt_holes.append(solid.translate([-rack_x/2+bolt_position_corner*bolt_width,rack_y/2-bolt_position_corner*bolt_width])(bolt_hole))
        bolt_holes.append(solid.translate([-rack_x/2+bolt_position_corner*bolt_width,-rack_y/2+bolt_position_corner*bolt_width])(bolt_hole))
        bolt_holes.append(solid.translate([rack_x/2-bolt_position_corner*bolt_width,-rack_y/2+bolt_position_corner*bolt_width])(bolt_hole))
        bolt_holes = solid.union()(*bolt_holes)
        rack=solid.difference()(rack,bolt_holes)
    rack_support = rack

    #center rack with pipette holes
    #rack = solid.translate([0,0,-rack_thickness])(rack)
    rack = solid.translate([X_len/2,Y_len/2])(rack)
    rack = solid.translate([-alignment_offset[0],-alignment_offset[1]])(rack)
    if not taper_angle == 0:
        wells=chamfer_extrude(pillar_height,taper_angle,segments=20)(wells)
    else:
        wells = solid.linear_extrude(height=pillar_height)(wells)
    rack = solid.union()(rack,wells)
    return rack, rack_support

def deg_taper_len(height,deg):
    if not deg == 0:
        return height*math.tan(math.radians(deg))
    else:
        return 0









 
 
************************************************/
